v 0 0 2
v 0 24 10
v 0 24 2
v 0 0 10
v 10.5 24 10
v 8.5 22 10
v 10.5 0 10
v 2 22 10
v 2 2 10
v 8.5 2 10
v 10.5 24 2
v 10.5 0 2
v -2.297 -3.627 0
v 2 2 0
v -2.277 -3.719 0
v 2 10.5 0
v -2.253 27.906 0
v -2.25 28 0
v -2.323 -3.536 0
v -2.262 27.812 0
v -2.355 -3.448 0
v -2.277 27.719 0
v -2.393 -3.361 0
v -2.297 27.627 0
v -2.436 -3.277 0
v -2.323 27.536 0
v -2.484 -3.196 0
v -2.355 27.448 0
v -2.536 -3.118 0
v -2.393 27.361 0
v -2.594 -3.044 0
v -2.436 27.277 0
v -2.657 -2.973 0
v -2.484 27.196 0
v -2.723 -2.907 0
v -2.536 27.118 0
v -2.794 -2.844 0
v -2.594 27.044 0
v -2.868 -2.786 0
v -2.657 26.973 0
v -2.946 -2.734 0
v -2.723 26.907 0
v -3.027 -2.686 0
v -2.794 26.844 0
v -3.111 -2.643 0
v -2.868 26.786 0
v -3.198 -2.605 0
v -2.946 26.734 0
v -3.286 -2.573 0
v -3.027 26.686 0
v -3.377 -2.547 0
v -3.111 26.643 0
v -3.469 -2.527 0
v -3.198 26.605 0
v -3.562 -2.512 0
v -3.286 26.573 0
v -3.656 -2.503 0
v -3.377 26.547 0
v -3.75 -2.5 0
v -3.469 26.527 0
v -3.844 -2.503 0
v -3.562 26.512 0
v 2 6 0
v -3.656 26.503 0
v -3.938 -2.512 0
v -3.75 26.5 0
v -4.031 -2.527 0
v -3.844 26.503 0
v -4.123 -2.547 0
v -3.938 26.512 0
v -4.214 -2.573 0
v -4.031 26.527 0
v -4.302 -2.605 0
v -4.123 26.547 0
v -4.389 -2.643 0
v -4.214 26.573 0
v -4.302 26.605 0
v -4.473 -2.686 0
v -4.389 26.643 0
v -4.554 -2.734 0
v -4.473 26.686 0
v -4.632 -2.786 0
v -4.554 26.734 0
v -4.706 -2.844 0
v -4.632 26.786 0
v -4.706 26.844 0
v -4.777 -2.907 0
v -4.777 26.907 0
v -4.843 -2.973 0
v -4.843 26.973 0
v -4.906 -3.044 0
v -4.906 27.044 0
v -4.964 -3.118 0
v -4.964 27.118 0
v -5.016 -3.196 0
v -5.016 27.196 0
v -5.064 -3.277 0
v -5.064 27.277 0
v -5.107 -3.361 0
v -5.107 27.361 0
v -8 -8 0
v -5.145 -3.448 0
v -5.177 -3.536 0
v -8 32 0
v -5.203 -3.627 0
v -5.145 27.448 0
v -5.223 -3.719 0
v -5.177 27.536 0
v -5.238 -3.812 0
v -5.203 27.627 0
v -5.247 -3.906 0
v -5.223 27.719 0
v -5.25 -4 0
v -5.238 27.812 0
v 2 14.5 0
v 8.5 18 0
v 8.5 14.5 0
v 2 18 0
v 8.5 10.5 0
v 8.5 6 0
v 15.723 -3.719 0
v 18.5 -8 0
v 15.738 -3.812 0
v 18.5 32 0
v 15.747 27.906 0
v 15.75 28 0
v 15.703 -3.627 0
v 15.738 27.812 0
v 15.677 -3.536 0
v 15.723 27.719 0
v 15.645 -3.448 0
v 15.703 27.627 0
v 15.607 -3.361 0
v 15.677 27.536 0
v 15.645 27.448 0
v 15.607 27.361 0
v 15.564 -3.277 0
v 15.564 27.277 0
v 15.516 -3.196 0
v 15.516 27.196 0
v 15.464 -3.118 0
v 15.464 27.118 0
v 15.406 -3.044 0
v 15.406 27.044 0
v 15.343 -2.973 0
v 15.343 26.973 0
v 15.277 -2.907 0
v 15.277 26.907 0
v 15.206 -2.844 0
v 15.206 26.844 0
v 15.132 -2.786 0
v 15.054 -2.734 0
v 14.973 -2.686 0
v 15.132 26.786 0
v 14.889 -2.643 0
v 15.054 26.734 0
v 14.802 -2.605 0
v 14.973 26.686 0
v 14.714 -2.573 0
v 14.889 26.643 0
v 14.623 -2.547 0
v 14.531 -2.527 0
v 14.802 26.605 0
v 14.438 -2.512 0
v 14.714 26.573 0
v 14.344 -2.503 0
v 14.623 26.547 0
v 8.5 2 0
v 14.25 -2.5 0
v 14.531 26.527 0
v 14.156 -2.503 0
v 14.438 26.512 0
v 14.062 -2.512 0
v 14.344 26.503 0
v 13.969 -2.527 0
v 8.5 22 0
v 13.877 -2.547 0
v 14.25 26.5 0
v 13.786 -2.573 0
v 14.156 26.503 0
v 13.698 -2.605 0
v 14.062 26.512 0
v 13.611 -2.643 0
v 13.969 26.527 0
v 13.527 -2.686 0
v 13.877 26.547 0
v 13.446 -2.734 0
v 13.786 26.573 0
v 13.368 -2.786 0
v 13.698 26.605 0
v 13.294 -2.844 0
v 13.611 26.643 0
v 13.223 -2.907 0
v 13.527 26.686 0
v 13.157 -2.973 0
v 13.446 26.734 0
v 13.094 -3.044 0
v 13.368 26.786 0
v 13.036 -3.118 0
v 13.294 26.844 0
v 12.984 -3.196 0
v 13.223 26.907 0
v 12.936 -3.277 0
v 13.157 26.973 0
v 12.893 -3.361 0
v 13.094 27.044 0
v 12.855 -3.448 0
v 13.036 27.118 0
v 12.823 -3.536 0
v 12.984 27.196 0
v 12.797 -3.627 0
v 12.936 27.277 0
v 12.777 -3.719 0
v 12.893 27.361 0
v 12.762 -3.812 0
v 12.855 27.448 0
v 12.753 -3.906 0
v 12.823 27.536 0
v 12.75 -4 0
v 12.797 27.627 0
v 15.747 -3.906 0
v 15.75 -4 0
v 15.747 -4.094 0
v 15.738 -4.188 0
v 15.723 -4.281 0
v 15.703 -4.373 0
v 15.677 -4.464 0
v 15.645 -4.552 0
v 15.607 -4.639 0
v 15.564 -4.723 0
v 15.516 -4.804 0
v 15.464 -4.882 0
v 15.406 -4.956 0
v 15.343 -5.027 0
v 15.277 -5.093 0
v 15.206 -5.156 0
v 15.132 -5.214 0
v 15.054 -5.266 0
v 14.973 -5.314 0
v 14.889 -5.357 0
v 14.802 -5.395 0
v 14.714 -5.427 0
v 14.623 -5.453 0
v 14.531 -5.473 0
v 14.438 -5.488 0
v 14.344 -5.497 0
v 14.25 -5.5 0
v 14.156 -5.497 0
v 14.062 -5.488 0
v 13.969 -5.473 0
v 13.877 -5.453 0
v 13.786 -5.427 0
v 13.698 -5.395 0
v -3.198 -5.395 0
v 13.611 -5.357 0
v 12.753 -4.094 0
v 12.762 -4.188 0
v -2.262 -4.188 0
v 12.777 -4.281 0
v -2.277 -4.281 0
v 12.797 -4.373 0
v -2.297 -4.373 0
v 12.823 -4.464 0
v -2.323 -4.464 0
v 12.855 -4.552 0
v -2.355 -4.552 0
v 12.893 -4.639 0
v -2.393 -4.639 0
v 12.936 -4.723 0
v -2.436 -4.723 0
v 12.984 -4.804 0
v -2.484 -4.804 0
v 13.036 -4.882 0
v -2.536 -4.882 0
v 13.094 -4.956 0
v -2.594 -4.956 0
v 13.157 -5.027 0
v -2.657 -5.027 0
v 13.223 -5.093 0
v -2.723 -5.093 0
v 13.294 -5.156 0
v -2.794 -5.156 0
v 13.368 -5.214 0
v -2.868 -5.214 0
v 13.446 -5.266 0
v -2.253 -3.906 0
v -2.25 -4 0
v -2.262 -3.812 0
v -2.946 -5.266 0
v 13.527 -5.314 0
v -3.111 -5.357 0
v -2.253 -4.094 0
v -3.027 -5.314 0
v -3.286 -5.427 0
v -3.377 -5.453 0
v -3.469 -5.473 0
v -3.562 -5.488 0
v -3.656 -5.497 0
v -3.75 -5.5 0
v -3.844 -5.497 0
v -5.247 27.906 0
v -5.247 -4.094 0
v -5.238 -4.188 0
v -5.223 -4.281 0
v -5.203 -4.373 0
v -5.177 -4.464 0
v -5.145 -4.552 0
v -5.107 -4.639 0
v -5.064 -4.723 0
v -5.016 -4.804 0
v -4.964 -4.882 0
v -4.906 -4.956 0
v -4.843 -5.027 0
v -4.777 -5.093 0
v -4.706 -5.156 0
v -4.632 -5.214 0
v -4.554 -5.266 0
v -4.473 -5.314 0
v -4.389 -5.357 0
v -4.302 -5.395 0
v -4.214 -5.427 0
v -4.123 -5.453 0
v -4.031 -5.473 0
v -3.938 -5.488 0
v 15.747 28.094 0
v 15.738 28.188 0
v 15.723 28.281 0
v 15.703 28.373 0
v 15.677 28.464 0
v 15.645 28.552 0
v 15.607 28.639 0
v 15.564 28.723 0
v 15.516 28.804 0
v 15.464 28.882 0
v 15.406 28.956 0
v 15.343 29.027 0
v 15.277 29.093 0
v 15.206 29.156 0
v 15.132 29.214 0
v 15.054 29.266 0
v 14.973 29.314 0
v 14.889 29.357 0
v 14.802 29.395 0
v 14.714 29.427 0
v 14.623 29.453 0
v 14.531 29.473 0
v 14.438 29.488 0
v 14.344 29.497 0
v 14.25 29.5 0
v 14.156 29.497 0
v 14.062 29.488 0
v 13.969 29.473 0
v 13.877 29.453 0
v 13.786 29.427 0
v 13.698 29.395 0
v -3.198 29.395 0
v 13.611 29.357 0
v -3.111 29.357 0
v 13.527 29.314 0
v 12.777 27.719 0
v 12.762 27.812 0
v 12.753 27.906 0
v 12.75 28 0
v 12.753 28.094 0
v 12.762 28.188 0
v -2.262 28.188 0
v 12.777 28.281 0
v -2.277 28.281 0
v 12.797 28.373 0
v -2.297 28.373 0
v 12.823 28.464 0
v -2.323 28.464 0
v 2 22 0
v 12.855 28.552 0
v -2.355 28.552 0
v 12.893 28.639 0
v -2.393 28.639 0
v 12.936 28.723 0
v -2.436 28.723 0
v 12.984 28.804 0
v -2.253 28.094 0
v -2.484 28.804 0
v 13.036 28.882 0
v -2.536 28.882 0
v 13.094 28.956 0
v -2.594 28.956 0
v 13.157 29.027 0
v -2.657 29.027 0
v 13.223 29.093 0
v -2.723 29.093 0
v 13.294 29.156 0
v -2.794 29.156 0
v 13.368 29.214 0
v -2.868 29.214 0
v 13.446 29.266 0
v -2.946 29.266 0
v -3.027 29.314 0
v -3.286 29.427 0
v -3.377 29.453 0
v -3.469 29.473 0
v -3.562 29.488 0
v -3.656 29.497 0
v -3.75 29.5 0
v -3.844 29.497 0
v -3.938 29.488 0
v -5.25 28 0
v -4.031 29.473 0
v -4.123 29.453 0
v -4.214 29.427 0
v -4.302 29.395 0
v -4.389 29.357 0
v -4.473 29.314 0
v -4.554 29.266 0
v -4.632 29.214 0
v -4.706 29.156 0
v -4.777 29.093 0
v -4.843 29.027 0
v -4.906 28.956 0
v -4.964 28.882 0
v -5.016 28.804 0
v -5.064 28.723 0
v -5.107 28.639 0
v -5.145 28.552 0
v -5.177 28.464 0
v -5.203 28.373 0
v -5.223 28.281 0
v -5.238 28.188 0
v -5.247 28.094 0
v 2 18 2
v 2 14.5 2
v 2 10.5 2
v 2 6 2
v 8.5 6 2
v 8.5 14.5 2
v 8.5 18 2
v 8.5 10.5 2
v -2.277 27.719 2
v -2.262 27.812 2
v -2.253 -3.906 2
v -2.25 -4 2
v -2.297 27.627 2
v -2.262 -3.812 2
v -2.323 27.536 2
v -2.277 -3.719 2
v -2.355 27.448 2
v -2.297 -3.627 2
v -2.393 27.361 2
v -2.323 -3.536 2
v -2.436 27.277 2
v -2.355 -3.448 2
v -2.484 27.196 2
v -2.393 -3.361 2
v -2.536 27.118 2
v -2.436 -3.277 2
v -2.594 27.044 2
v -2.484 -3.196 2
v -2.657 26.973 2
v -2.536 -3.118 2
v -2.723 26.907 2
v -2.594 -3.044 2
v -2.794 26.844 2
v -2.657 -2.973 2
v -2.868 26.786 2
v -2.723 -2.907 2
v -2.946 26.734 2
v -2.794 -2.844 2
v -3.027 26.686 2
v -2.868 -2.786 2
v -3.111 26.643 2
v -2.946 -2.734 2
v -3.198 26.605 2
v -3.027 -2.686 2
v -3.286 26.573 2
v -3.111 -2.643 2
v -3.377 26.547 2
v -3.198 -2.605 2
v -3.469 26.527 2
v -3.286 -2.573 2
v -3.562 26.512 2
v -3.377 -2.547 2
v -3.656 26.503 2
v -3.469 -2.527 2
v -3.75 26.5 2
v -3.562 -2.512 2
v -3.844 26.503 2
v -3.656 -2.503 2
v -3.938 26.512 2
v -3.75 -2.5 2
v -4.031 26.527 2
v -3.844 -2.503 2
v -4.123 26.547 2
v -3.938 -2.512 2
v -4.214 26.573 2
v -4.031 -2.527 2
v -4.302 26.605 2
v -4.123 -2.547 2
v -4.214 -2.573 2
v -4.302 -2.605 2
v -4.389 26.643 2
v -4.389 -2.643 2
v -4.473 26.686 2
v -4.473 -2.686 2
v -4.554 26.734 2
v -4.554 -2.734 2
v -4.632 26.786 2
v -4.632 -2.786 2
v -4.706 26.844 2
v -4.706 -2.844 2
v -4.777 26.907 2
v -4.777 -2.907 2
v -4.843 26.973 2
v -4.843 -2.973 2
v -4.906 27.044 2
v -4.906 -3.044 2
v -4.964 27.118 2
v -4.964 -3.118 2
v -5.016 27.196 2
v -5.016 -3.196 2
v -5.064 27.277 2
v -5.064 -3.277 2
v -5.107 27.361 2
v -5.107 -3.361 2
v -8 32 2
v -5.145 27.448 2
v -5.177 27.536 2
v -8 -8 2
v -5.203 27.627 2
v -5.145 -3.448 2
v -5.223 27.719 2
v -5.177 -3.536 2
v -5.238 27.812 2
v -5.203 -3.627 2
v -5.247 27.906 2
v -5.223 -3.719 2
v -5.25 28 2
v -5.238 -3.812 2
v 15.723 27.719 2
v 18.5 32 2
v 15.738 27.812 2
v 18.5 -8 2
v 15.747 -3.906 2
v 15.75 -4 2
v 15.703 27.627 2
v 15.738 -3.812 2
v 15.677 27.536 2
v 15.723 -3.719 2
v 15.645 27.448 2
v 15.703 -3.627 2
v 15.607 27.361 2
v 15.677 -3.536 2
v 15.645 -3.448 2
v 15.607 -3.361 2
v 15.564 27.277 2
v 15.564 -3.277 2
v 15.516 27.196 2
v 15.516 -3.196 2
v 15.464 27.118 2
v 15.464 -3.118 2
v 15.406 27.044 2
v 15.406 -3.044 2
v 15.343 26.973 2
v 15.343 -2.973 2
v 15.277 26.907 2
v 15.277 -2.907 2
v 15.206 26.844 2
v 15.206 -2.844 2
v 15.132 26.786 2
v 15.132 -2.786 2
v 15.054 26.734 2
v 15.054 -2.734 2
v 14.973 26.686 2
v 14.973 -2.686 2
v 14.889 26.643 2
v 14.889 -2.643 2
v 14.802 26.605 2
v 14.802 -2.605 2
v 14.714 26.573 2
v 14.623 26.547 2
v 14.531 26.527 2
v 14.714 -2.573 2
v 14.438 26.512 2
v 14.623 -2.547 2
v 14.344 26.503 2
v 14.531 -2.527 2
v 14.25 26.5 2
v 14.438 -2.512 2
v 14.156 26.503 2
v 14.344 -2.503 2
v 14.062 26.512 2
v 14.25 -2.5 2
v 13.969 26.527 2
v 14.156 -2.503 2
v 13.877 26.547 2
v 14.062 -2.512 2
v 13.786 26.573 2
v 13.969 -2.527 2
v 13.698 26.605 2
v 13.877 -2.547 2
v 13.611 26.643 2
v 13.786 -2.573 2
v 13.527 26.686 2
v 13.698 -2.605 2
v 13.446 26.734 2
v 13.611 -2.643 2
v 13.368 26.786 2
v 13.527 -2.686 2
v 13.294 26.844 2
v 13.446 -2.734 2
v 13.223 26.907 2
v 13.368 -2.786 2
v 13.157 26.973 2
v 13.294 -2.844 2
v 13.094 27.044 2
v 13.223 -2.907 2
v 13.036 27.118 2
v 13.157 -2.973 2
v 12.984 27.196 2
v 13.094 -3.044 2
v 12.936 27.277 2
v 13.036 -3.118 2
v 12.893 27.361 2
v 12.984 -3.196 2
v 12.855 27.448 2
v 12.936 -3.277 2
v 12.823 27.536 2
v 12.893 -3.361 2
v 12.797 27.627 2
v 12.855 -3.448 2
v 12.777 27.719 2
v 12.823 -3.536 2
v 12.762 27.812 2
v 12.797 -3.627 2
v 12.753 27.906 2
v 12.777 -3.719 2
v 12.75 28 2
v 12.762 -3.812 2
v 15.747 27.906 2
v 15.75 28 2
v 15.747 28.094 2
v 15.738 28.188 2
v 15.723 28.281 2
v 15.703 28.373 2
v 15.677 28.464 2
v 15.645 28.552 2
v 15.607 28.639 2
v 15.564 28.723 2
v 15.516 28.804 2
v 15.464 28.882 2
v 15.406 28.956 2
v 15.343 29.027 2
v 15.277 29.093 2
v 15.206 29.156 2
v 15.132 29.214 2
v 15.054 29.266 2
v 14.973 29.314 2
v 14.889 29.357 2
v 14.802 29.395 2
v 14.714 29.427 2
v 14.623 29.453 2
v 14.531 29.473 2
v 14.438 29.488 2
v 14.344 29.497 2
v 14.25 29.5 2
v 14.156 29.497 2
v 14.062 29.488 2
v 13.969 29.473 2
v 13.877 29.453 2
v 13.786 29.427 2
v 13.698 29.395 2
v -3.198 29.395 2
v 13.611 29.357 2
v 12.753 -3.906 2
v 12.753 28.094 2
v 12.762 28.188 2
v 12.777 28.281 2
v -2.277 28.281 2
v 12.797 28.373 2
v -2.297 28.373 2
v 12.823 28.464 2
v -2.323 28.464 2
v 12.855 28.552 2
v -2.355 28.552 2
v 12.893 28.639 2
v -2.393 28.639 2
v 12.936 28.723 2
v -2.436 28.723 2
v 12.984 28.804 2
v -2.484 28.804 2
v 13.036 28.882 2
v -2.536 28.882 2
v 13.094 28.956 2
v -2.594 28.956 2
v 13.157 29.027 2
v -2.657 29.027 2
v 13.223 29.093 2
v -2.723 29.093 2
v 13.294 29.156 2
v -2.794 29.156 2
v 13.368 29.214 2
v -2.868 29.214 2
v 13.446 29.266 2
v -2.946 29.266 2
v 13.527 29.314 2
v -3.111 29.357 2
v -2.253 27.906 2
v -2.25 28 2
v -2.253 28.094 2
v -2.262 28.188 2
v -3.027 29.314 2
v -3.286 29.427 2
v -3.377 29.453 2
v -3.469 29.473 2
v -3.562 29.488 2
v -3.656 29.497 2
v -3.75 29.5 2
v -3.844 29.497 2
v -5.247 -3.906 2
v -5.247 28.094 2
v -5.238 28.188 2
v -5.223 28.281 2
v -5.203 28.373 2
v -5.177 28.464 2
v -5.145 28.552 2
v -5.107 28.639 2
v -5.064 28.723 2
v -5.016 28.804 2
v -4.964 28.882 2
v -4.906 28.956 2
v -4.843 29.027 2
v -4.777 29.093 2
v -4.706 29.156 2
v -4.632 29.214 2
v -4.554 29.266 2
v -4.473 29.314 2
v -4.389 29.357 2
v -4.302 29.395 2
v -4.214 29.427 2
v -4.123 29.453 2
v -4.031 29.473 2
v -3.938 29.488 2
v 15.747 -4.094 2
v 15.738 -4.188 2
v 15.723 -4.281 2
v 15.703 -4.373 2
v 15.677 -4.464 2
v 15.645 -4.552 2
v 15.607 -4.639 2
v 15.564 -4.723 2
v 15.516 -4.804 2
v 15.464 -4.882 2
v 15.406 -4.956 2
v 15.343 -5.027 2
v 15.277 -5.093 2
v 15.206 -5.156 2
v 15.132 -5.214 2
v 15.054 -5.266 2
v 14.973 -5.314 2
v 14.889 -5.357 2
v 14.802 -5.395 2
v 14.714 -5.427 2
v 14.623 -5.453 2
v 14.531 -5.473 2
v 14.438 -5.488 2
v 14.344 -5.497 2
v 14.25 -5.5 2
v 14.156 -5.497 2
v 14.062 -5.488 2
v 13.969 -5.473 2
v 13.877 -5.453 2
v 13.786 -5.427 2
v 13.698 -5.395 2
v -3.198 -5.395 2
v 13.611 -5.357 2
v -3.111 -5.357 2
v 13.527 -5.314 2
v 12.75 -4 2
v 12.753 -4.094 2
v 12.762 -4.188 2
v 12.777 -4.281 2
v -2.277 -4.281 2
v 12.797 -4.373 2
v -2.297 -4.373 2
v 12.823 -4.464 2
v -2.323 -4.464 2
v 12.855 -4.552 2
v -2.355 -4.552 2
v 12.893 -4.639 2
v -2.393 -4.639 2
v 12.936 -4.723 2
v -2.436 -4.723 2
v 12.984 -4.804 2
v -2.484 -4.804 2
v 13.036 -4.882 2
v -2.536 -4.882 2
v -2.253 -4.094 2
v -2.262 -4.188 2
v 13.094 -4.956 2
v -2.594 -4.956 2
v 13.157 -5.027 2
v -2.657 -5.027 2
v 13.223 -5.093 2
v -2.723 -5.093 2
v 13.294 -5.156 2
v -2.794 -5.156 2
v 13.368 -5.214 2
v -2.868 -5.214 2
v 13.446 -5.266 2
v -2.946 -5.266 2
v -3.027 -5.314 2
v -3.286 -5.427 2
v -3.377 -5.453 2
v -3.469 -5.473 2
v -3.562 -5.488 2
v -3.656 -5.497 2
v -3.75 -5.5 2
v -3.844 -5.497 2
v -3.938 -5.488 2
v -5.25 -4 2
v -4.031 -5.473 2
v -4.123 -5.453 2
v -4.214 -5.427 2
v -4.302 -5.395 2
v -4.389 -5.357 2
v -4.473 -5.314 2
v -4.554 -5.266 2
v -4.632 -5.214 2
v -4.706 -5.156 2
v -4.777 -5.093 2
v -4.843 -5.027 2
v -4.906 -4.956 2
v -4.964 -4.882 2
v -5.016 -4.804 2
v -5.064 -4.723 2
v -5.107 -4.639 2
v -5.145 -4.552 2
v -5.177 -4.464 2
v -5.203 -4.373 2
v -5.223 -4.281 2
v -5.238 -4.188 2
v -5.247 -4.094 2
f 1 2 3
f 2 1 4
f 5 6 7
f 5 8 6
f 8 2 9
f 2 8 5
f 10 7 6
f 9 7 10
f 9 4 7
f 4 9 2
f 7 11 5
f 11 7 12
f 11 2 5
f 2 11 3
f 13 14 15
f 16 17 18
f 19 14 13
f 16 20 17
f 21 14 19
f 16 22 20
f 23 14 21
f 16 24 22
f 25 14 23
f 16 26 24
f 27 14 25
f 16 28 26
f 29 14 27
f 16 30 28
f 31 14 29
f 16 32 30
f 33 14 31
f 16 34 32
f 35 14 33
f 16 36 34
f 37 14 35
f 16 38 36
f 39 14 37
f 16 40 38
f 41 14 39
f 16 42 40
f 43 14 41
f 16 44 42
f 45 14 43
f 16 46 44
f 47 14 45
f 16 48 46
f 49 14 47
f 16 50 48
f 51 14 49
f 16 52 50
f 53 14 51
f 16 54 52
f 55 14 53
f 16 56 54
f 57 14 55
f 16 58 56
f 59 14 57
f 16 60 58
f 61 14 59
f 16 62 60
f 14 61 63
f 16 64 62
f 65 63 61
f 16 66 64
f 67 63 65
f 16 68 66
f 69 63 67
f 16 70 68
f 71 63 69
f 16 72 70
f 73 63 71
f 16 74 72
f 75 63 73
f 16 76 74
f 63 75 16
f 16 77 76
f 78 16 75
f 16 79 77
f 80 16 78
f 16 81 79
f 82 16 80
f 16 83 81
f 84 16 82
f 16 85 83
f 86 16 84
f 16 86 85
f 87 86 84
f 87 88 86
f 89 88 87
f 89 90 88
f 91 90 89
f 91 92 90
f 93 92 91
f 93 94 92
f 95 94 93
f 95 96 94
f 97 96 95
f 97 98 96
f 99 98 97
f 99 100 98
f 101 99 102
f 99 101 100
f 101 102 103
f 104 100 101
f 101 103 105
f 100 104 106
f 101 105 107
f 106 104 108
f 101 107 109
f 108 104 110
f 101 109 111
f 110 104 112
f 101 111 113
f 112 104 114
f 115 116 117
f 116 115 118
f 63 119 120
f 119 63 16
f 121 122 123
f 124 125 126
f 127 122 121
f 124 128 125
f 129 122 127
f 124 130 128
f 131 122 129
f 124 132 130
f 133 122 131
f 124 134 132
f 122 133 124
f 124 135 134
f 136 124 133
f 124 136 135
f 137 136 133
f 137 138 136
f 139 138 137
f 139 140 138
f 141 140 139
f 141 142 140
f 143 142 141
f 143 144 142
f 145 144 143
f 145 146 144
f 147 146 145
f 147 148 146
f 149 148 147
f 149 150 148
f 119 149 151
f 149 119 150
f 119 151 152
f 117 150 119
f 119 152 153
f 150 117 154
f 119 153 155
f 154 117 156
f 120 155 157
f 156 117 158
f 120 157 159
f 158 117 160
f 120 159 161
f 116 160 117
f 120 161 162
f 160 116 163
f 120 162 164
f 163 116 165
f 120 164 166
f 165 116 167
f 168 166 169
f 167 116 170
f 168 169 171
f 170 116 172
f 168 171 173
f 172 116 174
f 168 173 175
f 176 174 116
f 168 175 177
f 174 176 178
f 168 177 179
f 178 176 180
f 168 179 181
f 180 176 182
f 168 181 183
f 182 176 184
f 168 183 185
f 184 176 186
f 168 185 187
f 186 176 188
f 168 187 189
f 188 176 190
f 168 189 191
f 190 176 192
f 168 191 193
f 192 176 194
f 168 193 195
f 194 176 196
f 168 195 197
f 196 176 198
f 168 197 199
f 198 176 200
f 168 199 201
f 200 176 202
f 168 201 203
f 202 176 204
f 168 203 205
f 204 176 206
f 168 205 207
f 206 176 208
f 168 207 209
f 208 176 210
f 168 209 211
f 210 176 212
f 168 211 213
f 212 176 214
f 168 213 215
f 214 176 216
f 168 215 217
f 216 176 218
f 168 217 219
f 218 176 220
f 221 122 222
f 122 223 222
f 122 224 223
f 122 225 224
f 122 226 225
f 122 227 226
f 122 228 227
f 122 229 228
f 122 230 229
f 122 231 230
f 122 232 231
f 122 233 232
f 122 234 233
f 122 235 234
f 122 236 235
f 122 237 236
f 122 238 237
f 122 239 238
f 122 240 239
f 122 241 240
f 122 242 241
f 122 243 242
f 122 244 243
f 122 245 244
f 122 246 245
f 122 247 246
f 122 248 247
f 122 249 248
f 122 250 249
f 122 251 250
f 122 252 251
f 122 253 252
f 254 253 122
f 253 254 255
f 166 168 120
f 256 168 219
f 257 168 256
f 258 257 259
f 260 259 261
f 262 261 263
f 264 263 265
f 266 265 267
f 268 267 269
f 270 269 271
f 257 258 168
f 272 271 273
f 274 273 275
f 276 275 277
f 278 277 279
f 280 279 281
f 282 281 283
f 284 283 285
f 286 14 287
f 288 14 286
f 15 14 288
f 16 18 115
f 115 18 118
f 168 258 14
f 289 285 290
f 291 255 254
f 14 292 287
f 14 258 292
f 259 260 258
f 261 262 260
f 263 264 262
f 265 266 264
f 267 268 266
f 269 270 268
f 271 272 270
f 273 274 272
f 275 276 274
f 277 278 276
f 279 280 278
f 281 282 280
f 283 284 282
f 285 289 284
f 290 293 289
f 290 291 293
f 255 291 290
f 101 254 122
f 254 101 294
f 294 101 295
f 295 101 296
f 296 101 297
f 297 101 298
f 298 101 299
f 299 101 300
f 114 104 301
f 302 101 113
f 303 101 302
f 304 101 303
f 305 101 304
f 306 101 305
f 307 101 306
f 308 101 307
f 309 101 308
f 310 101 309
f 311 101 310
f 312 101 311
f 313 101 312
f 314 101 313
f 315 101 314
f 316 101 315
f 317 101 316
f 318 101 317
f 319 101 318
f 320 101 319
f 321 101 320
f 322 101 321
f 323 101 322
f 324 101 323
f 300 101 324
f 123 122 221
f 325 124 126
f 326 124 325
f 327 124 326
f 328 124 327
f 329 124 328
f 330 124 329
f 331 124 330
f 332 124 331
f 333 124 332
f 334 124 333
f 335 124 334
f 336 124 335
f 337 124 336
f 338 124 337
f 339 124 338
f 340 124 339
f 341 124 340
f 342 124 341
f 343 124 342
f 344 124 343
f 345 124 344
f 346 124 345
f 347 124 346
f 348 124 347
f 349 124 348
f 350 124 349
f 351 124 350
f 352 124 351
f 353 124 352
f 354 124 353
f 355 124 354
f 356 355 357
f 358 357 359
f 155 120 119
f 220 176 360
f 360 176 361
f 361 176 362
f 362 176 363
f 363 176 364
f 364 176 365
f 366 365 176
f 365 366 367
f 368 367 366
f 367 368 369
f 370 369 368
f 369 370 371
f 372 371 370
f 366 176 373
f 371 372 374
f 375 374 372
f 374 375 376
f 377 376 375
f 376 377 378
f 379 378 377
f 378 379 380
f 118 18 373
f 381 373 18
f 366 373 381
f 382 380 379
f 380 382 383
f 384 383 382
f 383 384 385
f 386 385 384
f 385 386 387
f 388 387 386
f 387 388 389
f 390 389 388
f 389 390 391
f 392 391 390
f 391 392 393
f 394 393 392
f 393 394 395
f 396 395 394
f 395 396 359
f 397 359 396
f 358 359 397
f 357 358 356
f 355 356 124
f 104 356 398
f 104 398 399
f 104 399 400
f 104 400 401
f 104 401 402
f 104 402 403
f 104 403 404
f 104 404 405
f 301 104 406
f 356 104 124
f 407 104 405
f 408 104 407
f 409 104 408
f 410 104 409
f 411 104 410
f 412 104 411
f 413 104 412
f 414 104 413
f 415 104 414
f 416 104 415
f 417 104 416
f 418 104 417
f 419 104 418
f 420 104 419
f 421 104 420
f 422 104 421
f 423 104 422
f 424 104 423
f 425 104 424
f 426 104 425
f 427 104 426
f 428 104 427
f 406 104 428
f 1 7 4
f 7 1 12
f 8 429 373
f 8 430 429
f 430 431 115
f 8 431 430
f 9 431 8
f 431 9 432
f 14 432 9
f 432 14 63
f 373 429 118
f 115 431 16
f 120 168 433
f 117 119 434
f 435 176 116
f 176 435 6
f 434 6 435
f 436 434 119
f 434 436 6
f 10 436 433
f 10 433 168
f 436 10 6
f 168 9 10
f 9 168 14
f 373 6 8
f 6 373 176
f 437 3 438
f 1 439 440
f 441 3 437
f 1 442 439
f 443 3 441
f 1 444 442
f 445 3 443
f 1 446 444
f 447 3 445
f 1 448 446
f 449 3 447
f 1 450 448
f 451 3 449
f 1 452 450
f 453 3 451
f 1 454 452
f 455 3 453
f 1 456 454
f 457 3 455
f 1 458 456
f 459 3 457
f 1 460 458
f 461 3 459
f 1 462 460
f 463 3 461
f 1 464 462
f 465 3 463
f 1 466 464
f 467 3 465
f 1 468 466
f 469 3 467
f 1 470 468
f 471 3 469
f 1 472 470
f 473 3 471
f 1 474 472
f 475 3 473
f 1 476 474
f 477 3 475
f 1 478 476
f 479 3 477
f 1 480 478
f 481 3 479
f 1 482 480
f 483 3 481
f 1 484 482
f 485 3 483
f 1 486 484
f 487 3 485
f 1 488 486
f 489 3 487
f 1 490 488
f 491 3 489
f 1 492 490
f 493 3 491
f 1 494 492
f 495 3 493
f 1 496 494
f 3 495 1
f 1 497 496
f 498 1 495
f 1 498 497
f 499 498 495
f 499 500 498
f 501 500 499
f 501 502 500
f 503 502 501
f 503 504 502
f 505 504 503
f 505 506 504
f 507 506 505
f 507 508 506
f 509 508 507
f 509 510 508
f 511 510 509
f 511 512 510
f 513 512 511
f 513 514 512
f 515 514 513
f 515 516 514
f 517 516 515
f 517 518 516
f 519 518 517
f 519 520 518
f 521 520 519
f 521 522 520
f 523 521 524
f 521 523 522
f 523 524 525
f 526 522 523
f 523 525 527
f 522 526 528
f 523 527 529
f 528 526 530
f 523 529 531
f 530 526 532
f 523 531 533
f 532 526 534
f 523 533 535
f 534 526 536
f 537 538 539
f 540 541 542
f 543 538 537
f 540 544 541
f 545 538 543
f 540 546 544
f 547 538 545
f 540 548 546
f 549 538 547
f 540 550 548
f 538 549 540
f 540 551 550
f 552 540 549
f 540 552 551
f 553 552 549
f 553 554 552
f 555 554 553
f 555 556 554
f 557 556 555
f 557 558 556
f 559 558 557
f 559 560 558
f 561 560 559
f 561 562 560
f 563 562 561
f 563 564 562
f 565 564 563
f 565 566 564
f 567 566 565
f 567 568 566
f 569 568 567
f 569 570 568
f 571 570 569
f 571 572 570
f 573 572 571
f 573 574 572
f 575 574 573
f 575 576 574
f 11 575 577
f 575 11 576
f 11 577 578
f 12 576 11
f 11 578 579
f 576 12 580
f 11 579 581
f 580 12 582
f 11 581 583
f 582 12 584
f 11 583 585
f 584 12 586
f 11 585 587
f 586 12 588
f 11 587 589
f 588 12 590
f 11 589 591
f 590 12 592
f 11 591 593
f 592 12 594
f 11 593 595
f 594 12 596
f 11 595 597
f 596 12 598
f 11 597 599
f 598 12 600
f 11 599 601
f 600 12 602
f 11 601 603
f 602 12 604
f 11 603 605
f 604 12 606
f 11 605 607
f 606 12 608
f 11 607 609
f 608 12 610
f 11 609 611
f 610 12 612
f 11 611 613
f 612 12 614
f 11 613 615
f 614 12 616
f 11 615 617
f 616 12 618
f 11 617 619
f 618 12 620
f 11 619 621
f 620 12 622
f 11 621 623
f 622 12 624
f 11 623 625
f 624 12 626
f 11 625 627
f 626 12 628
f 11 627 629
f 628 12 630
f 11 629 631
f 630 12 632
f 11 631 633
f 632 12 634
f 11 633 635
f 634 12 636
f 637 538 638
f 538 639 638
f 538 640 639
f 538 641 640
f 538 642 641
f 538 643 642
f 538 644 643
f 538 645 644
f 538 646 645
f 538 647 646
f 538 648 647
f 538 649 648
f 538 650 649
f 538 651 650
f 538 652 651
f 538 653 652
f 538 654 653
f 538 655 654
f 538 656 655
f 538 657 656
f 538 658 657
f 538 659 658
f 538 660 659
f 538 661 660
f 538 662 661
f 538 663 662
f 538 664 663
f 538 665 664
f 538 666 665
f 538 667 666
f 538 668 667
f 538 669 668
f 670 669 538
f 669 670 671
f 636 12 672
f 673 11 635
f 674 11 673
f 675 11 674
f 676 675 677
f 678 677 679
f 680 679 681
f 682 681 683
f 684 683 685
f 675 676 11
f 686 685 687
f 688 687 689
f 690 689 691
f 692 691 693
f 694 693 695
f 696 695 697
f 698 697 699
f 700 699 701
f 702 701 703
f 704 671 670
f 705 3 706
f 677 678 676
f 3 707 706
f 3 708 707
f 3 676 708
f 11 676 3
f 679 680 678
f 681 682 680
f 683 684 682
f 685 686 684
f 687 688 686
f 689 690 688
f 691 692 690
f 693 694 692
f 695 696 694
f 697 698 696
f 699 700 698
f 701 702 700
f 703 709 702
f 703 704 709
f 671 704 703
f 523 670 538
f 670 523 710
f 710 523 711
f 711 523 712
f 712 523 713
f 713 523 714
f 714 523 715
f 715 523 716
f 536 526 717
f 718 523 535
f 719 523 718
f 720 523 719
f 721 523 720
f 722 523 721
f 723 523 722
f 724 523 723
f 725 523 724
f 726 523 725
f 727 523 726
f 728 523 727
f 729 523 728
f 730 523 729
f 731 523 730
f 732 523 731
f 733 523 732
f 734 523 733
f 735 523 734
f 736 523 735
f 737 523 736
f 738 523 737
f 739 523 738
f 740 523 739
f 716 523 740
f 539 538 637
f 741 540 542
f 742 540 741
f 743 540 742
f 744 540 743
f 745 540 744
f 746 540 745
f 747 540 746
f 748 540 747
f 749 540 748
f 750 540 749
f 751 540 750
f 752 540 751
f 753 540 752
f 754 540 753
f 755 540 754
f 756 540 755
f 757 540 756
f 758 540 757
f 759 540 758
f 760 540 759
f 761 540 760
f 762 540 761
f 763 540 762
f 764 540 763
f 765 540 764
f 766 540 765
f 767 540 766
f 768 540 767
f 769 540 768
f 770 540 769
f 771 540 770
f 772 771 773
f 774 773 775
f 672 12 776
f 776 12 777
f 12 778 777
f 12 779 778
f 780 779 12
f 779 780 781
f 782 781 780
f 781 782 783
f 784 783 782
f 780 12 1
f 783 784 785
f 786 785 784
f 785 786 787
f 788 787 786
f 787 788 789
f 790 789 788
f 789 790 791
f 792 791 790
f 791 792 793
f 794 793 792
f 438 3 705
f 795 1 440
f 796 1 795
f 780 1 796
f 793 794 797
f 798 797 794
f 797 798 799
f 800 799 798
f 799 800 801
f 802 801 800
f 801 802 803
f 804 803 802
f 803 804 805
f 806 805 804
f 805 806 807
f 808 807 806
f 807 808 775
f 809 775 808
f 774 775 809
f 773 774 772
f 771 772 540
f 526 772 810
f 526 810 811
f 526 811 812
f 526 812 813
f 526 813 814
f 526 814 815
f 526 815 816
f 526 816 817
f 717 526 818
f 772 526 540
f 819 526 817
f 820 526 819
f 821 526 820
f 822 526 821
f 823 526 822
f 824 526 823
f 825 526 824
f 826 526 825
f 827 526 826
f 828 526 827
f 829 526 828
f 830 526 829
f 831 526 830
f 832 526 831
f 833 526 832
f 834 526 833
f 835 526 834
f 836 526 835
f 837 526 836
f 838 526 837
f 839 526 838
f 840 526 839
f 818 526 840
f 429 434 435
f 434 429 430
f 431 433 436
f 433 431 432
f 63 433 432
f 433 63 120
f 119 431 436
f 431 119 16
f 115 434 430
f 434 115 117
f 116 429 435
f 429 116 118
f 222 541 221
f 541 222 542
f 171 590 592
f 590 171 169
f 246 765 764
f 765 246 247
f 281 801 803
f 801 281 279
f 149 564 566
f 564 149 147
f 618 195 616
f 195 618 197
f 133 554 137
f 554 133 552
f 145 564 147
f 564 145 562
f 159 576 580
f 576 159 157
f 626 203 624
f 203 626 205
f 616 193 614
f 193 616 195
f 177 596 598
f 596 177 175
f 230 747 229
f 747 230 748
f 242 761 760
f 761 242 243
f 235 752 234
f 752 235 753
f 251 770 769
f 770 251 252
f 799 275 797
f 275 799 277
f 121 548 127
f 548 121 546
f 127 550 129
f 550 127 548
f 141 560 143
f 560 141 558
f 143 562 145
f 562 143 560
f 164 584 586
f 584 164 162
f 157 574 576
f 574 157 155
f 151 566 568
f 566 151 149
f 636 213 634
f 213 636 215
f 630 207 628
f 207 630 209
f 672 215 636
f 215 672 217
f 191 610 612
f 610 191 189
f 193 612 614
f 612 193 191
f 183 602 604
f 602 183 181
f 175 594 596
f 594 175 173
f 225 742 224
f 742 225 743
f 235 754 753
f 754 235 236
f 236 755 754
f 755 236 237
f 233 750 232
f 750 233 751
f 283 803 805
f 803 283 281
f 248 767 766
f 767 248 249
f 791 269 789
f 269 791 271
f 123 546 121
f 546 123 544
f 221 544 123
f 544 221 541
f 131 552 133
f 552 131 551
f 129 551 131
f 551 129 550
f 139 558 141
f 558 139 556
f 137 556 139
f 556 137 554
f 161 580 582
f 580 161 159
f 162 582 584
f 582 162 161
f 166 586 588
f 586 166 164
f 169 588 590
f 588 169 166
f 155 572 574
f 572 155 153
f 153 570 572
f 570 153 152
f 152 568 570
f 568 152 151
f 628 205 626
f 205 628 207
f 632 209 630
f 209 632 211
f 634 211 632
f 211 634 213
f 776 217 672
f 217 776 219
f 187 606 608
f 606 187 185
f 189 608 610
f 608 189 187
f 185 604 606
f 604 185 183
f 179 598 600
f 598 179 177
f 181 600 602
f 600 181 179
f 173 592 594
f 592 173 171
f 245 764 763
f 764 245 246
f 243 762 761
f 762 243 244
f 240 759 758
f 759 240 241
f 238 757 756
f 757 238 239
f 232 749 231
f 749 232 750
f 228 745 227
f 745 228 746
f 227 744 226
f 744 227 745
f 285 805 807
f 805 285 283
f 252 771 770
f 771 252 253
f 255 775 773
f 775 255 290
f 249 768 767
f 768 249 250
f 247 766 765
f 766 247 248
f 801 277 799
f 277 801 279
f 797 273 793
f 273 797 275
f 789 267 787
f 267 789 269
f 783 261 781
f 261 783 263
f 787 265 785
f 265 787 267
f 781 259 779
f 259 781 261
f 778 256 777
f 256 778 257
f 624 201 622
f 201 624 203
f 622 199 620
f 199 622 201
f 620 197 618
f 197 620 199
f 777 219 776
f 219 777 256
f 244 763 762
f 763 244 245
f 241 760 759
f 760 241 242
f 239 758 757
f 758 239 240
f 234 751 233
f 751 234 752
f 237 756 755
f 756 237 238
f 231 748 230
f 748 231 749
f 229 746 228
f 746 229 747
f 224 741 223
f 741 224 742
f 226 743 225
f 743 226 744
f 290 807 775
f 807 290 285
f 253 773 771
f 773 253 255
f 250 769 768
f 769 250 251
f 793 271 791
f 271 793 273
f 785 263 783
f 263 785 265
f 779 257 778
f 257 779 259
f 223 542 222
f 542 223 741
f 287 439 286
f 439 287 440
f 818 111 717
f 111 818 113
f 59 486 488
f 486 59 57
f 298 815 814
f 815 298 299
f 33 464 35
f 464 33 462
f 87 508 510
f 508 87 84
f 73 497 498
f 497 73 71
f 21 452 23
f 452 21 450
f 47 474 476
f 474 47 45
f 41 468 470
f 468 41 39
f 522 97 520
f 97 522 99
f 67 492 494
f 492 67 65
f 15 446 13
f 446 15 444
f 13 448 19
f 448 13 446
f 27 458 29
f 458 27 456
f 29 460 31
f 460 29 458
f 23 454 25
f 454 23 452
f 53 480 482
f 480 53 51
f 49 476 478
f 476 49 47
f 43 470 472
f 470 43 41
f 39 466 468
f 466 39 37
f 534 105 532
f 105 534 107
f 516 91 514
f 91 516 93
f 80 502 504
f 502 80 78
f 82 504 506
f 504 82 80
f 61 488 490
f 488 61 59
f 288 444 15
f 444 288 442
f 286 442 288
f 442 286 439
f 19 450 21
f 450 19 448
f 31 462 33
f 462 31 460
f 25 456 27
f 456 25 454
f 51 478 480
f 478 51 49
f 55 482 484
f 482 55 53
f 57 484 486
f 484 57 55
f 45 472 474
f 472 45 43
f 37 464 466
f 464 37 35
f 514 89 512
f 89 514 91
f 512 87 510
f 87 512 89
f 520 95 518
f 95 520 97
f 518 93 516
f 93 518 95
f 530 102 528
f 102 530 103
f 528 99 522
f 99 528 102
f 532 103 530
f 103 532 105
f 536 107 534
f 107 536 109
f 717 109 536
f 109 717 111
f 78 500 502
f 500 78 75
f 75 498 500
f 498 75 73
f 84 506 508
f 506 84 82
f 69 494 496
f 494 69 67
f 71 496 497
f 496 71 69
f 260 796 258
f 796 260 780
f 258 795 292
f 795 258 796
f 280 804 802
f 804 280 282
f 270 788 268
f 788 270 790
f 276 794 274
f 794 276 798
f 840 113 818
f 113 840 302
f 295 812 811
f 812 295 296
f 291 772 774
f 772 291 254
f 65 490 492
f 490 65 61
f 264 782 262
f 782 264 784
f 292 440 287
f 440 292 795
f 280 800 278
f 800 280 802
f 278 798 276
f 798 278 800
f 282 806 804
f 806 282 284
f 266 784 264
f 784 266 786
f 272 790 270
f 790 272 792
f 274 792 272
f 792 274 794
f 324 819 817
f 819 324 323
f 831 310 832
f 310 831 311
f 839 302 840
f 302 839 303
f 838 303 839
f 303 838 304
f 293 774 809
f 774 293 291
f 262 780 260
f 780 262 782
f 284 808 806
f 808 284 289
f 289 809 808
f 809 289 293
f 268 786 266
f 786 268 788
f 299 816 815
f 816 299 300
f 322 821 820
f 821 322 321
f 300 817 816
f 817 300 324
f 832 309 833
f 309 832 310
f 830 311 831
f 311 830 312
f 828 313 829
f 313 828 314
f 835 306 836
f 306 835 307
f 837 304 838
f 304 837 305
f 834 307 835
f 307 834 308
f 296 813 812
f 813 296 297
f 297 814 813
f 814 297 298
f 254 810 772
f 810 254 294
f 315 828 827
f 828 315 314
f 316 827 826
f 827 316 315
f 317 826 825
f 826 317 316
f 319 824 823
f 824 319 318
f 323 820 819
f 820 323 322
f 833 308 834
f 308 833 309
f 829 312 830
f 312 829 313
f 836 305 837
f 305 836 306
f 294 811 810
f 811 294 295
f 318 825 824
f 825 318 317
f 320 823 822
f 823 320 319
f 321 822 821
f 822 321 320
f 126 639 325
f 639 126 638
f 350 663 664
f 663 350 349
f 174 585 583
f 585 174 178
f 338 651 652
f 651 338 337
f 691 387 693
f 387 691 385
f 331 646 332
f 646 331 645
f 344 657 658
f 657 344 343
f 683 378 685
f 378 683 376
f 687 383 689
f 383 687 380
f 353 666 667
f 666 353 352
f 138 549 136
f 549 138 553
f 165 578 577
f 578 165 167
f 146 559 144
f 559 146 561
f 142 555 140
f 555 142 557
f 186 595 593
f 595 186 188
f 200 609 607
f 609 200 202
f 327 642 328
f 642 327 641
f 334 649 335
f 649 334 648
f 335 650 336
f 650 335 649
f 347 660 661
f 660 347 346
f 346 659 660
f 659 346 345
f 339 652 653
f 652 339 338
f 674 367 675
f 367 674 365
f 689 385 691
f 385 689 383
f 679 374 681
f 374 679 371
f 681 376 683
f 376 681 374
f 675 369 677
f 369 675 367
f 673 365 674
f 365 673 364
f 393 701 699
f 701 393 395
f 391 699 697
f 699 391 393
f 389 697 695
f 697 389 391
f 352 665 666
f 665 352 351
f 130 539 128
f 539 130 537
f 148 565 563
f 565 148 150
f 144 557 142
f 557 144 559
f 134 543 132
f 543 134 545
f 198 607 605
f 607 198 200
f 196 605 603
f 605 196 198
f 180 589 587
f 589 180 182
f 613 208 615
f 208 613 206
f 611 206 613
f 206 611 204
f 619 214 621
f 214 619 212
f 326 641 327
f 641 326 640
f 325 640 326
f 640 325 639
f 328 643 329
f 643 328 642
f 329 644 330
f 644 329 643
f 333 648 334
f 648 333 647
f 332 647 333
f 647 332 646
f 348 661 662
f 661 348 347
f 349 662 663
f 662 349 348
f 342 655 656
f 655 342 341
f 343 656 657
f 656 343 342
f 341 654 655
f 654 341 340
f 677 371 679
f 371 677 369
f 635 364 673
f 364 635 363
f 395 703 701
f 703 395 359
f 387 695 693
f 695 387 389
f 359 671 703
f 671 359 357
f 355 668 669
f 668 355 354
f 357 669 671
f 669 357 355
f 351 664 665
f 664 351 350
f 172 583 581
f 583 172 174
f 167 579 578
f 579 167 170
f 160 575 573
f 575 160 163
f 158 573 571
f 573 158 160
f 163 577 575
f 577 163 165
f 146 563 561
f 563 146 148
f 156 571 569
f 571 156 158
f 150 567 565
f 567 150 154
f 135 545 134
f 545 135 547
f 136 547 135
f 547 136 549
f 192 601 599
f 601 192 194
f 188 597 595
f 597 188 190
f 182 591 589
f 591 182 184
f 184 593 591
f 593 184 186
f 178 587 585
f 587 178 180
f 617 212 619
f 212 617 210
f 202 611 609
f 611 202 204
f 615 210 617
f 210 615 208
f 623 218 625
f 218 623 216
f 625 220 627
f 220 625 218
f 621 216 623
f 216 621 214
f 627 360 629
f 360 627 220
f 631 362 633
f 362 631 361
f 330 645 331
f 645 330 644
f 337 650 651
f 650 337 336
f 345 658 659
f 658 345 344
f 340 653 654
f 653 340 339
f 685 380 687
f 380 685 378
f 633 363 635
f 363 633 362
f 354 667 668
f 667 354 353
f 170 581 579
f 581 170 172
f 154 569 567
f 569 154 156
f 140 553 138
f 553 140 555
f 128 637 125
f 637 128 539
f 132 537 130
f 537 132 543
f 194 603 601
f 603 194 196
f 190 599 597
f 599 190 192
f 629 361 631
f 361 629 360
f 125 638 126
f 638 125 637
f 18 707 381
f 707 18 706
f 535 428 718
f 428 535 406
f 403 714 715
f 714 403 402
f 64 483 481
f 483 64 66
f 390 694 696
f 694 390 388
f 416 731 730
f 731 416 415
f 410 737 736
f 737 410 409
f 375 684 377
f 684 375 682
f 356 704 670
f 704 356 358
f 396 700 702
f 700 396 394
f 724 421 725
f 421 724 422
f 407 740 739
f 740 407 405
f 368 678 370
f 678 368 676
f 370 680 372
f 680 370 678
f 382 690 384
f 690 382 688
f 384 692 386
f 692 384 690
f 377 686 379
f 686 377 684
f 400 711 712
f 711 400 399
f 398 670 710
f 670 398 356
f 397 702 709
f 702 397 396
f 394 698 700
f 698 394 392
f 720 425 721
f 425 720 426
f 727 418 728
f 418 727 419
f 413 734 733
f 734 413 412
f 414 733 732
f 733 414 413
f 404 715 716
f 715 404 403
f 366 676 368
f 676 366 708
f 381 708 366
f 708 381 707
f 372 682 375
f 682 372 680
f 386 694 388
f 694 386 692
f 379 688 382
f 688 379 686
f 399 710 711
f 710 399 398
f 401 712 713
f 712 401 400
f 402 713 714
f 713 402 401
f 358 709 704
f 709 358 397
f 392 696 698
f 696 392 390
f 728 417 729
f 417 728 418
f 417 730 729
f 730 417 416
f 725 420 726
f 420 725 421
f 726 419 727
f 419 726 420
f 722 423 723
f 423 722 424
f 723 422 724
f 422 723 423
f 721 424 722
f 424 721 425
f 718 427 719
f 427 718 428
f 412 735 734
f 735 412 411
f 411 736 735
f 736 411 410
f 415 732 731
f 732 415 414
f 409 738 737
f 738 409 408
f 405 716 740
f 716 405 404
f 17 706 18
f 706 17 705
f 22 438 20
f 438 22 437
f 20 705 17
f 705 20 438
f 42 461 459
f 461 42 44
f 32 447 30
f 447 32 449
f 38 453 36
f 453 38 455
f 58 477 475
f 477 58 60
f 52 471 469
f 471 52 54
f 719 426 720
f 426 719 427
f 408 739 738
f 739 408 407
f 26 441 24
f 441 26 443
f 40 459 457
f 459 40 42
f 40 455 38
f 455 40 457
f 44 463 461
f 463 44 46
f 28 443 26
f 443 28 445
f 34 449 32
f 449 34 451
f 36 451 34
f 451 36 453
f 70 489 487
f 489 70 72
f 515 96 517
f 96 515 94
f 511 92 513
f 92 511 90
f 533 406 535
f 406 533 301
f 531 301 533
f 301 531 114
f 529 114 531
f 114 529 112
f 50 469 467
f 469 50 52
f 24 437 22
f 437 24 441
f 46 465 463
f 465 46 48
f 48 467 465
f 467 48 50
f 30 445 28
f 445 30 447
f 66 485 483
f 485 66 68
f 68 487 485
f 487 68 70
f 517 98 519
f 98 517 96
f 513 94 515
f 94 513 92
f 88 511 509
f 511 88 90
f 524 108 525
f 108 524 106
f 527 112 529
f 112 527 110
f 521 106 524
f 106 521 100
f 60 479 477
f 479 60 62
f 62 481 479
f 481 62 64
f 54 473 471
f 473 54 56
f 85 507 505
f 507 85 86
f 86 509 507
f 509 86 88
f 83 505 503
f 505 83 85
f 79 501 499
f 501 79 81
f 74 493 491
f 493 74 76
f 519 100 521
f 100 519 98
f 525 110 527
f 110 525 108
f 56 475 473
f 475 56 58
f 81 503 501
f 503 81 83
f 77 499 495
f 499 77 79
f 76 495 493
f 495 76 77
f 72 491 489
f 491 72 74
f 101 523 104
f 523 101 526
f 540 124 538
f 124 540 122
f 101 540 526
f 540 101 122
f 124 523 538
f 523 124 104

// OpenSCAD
// Microswitch housing e.g. SS-5GL

// Housing
difference(){
  // Exterior walls
  cube([10.5,24,10]);
  // Interior cutout
  translate([2, 2, 0])
    cube([6.5,20,10]);
}

// Base Plate
translate([-8,-8,0])
difference(){
  cube([26.5, 40, 2]);
  translate([6,0,0]) {
    // Cutouts for switch contacts
    translate([4, 10, 0])
        cube([6.5, 4, 2]);  
    translate([4, 18.5, 0])
        cube([6.5, 4, 2]);
    translate([4, 26, 0])
        cube([6.5, 4, 2]);
    // Screw holes
    translate([16.25, 4, 0])
        cylinder(h=2, r=1.5, $fn=100);
    translate([-1.75, 4, 0])
        cylinder(h=2, r=1.5, $fn=100);  
    translate([16.25, 36, 0])
        cylinder(h=2, r=1.5, $fn=100);
    translate([-1.75, 36, 0])
        cylinder(h=2, r=1.5, $fn=100);  
  }
}
